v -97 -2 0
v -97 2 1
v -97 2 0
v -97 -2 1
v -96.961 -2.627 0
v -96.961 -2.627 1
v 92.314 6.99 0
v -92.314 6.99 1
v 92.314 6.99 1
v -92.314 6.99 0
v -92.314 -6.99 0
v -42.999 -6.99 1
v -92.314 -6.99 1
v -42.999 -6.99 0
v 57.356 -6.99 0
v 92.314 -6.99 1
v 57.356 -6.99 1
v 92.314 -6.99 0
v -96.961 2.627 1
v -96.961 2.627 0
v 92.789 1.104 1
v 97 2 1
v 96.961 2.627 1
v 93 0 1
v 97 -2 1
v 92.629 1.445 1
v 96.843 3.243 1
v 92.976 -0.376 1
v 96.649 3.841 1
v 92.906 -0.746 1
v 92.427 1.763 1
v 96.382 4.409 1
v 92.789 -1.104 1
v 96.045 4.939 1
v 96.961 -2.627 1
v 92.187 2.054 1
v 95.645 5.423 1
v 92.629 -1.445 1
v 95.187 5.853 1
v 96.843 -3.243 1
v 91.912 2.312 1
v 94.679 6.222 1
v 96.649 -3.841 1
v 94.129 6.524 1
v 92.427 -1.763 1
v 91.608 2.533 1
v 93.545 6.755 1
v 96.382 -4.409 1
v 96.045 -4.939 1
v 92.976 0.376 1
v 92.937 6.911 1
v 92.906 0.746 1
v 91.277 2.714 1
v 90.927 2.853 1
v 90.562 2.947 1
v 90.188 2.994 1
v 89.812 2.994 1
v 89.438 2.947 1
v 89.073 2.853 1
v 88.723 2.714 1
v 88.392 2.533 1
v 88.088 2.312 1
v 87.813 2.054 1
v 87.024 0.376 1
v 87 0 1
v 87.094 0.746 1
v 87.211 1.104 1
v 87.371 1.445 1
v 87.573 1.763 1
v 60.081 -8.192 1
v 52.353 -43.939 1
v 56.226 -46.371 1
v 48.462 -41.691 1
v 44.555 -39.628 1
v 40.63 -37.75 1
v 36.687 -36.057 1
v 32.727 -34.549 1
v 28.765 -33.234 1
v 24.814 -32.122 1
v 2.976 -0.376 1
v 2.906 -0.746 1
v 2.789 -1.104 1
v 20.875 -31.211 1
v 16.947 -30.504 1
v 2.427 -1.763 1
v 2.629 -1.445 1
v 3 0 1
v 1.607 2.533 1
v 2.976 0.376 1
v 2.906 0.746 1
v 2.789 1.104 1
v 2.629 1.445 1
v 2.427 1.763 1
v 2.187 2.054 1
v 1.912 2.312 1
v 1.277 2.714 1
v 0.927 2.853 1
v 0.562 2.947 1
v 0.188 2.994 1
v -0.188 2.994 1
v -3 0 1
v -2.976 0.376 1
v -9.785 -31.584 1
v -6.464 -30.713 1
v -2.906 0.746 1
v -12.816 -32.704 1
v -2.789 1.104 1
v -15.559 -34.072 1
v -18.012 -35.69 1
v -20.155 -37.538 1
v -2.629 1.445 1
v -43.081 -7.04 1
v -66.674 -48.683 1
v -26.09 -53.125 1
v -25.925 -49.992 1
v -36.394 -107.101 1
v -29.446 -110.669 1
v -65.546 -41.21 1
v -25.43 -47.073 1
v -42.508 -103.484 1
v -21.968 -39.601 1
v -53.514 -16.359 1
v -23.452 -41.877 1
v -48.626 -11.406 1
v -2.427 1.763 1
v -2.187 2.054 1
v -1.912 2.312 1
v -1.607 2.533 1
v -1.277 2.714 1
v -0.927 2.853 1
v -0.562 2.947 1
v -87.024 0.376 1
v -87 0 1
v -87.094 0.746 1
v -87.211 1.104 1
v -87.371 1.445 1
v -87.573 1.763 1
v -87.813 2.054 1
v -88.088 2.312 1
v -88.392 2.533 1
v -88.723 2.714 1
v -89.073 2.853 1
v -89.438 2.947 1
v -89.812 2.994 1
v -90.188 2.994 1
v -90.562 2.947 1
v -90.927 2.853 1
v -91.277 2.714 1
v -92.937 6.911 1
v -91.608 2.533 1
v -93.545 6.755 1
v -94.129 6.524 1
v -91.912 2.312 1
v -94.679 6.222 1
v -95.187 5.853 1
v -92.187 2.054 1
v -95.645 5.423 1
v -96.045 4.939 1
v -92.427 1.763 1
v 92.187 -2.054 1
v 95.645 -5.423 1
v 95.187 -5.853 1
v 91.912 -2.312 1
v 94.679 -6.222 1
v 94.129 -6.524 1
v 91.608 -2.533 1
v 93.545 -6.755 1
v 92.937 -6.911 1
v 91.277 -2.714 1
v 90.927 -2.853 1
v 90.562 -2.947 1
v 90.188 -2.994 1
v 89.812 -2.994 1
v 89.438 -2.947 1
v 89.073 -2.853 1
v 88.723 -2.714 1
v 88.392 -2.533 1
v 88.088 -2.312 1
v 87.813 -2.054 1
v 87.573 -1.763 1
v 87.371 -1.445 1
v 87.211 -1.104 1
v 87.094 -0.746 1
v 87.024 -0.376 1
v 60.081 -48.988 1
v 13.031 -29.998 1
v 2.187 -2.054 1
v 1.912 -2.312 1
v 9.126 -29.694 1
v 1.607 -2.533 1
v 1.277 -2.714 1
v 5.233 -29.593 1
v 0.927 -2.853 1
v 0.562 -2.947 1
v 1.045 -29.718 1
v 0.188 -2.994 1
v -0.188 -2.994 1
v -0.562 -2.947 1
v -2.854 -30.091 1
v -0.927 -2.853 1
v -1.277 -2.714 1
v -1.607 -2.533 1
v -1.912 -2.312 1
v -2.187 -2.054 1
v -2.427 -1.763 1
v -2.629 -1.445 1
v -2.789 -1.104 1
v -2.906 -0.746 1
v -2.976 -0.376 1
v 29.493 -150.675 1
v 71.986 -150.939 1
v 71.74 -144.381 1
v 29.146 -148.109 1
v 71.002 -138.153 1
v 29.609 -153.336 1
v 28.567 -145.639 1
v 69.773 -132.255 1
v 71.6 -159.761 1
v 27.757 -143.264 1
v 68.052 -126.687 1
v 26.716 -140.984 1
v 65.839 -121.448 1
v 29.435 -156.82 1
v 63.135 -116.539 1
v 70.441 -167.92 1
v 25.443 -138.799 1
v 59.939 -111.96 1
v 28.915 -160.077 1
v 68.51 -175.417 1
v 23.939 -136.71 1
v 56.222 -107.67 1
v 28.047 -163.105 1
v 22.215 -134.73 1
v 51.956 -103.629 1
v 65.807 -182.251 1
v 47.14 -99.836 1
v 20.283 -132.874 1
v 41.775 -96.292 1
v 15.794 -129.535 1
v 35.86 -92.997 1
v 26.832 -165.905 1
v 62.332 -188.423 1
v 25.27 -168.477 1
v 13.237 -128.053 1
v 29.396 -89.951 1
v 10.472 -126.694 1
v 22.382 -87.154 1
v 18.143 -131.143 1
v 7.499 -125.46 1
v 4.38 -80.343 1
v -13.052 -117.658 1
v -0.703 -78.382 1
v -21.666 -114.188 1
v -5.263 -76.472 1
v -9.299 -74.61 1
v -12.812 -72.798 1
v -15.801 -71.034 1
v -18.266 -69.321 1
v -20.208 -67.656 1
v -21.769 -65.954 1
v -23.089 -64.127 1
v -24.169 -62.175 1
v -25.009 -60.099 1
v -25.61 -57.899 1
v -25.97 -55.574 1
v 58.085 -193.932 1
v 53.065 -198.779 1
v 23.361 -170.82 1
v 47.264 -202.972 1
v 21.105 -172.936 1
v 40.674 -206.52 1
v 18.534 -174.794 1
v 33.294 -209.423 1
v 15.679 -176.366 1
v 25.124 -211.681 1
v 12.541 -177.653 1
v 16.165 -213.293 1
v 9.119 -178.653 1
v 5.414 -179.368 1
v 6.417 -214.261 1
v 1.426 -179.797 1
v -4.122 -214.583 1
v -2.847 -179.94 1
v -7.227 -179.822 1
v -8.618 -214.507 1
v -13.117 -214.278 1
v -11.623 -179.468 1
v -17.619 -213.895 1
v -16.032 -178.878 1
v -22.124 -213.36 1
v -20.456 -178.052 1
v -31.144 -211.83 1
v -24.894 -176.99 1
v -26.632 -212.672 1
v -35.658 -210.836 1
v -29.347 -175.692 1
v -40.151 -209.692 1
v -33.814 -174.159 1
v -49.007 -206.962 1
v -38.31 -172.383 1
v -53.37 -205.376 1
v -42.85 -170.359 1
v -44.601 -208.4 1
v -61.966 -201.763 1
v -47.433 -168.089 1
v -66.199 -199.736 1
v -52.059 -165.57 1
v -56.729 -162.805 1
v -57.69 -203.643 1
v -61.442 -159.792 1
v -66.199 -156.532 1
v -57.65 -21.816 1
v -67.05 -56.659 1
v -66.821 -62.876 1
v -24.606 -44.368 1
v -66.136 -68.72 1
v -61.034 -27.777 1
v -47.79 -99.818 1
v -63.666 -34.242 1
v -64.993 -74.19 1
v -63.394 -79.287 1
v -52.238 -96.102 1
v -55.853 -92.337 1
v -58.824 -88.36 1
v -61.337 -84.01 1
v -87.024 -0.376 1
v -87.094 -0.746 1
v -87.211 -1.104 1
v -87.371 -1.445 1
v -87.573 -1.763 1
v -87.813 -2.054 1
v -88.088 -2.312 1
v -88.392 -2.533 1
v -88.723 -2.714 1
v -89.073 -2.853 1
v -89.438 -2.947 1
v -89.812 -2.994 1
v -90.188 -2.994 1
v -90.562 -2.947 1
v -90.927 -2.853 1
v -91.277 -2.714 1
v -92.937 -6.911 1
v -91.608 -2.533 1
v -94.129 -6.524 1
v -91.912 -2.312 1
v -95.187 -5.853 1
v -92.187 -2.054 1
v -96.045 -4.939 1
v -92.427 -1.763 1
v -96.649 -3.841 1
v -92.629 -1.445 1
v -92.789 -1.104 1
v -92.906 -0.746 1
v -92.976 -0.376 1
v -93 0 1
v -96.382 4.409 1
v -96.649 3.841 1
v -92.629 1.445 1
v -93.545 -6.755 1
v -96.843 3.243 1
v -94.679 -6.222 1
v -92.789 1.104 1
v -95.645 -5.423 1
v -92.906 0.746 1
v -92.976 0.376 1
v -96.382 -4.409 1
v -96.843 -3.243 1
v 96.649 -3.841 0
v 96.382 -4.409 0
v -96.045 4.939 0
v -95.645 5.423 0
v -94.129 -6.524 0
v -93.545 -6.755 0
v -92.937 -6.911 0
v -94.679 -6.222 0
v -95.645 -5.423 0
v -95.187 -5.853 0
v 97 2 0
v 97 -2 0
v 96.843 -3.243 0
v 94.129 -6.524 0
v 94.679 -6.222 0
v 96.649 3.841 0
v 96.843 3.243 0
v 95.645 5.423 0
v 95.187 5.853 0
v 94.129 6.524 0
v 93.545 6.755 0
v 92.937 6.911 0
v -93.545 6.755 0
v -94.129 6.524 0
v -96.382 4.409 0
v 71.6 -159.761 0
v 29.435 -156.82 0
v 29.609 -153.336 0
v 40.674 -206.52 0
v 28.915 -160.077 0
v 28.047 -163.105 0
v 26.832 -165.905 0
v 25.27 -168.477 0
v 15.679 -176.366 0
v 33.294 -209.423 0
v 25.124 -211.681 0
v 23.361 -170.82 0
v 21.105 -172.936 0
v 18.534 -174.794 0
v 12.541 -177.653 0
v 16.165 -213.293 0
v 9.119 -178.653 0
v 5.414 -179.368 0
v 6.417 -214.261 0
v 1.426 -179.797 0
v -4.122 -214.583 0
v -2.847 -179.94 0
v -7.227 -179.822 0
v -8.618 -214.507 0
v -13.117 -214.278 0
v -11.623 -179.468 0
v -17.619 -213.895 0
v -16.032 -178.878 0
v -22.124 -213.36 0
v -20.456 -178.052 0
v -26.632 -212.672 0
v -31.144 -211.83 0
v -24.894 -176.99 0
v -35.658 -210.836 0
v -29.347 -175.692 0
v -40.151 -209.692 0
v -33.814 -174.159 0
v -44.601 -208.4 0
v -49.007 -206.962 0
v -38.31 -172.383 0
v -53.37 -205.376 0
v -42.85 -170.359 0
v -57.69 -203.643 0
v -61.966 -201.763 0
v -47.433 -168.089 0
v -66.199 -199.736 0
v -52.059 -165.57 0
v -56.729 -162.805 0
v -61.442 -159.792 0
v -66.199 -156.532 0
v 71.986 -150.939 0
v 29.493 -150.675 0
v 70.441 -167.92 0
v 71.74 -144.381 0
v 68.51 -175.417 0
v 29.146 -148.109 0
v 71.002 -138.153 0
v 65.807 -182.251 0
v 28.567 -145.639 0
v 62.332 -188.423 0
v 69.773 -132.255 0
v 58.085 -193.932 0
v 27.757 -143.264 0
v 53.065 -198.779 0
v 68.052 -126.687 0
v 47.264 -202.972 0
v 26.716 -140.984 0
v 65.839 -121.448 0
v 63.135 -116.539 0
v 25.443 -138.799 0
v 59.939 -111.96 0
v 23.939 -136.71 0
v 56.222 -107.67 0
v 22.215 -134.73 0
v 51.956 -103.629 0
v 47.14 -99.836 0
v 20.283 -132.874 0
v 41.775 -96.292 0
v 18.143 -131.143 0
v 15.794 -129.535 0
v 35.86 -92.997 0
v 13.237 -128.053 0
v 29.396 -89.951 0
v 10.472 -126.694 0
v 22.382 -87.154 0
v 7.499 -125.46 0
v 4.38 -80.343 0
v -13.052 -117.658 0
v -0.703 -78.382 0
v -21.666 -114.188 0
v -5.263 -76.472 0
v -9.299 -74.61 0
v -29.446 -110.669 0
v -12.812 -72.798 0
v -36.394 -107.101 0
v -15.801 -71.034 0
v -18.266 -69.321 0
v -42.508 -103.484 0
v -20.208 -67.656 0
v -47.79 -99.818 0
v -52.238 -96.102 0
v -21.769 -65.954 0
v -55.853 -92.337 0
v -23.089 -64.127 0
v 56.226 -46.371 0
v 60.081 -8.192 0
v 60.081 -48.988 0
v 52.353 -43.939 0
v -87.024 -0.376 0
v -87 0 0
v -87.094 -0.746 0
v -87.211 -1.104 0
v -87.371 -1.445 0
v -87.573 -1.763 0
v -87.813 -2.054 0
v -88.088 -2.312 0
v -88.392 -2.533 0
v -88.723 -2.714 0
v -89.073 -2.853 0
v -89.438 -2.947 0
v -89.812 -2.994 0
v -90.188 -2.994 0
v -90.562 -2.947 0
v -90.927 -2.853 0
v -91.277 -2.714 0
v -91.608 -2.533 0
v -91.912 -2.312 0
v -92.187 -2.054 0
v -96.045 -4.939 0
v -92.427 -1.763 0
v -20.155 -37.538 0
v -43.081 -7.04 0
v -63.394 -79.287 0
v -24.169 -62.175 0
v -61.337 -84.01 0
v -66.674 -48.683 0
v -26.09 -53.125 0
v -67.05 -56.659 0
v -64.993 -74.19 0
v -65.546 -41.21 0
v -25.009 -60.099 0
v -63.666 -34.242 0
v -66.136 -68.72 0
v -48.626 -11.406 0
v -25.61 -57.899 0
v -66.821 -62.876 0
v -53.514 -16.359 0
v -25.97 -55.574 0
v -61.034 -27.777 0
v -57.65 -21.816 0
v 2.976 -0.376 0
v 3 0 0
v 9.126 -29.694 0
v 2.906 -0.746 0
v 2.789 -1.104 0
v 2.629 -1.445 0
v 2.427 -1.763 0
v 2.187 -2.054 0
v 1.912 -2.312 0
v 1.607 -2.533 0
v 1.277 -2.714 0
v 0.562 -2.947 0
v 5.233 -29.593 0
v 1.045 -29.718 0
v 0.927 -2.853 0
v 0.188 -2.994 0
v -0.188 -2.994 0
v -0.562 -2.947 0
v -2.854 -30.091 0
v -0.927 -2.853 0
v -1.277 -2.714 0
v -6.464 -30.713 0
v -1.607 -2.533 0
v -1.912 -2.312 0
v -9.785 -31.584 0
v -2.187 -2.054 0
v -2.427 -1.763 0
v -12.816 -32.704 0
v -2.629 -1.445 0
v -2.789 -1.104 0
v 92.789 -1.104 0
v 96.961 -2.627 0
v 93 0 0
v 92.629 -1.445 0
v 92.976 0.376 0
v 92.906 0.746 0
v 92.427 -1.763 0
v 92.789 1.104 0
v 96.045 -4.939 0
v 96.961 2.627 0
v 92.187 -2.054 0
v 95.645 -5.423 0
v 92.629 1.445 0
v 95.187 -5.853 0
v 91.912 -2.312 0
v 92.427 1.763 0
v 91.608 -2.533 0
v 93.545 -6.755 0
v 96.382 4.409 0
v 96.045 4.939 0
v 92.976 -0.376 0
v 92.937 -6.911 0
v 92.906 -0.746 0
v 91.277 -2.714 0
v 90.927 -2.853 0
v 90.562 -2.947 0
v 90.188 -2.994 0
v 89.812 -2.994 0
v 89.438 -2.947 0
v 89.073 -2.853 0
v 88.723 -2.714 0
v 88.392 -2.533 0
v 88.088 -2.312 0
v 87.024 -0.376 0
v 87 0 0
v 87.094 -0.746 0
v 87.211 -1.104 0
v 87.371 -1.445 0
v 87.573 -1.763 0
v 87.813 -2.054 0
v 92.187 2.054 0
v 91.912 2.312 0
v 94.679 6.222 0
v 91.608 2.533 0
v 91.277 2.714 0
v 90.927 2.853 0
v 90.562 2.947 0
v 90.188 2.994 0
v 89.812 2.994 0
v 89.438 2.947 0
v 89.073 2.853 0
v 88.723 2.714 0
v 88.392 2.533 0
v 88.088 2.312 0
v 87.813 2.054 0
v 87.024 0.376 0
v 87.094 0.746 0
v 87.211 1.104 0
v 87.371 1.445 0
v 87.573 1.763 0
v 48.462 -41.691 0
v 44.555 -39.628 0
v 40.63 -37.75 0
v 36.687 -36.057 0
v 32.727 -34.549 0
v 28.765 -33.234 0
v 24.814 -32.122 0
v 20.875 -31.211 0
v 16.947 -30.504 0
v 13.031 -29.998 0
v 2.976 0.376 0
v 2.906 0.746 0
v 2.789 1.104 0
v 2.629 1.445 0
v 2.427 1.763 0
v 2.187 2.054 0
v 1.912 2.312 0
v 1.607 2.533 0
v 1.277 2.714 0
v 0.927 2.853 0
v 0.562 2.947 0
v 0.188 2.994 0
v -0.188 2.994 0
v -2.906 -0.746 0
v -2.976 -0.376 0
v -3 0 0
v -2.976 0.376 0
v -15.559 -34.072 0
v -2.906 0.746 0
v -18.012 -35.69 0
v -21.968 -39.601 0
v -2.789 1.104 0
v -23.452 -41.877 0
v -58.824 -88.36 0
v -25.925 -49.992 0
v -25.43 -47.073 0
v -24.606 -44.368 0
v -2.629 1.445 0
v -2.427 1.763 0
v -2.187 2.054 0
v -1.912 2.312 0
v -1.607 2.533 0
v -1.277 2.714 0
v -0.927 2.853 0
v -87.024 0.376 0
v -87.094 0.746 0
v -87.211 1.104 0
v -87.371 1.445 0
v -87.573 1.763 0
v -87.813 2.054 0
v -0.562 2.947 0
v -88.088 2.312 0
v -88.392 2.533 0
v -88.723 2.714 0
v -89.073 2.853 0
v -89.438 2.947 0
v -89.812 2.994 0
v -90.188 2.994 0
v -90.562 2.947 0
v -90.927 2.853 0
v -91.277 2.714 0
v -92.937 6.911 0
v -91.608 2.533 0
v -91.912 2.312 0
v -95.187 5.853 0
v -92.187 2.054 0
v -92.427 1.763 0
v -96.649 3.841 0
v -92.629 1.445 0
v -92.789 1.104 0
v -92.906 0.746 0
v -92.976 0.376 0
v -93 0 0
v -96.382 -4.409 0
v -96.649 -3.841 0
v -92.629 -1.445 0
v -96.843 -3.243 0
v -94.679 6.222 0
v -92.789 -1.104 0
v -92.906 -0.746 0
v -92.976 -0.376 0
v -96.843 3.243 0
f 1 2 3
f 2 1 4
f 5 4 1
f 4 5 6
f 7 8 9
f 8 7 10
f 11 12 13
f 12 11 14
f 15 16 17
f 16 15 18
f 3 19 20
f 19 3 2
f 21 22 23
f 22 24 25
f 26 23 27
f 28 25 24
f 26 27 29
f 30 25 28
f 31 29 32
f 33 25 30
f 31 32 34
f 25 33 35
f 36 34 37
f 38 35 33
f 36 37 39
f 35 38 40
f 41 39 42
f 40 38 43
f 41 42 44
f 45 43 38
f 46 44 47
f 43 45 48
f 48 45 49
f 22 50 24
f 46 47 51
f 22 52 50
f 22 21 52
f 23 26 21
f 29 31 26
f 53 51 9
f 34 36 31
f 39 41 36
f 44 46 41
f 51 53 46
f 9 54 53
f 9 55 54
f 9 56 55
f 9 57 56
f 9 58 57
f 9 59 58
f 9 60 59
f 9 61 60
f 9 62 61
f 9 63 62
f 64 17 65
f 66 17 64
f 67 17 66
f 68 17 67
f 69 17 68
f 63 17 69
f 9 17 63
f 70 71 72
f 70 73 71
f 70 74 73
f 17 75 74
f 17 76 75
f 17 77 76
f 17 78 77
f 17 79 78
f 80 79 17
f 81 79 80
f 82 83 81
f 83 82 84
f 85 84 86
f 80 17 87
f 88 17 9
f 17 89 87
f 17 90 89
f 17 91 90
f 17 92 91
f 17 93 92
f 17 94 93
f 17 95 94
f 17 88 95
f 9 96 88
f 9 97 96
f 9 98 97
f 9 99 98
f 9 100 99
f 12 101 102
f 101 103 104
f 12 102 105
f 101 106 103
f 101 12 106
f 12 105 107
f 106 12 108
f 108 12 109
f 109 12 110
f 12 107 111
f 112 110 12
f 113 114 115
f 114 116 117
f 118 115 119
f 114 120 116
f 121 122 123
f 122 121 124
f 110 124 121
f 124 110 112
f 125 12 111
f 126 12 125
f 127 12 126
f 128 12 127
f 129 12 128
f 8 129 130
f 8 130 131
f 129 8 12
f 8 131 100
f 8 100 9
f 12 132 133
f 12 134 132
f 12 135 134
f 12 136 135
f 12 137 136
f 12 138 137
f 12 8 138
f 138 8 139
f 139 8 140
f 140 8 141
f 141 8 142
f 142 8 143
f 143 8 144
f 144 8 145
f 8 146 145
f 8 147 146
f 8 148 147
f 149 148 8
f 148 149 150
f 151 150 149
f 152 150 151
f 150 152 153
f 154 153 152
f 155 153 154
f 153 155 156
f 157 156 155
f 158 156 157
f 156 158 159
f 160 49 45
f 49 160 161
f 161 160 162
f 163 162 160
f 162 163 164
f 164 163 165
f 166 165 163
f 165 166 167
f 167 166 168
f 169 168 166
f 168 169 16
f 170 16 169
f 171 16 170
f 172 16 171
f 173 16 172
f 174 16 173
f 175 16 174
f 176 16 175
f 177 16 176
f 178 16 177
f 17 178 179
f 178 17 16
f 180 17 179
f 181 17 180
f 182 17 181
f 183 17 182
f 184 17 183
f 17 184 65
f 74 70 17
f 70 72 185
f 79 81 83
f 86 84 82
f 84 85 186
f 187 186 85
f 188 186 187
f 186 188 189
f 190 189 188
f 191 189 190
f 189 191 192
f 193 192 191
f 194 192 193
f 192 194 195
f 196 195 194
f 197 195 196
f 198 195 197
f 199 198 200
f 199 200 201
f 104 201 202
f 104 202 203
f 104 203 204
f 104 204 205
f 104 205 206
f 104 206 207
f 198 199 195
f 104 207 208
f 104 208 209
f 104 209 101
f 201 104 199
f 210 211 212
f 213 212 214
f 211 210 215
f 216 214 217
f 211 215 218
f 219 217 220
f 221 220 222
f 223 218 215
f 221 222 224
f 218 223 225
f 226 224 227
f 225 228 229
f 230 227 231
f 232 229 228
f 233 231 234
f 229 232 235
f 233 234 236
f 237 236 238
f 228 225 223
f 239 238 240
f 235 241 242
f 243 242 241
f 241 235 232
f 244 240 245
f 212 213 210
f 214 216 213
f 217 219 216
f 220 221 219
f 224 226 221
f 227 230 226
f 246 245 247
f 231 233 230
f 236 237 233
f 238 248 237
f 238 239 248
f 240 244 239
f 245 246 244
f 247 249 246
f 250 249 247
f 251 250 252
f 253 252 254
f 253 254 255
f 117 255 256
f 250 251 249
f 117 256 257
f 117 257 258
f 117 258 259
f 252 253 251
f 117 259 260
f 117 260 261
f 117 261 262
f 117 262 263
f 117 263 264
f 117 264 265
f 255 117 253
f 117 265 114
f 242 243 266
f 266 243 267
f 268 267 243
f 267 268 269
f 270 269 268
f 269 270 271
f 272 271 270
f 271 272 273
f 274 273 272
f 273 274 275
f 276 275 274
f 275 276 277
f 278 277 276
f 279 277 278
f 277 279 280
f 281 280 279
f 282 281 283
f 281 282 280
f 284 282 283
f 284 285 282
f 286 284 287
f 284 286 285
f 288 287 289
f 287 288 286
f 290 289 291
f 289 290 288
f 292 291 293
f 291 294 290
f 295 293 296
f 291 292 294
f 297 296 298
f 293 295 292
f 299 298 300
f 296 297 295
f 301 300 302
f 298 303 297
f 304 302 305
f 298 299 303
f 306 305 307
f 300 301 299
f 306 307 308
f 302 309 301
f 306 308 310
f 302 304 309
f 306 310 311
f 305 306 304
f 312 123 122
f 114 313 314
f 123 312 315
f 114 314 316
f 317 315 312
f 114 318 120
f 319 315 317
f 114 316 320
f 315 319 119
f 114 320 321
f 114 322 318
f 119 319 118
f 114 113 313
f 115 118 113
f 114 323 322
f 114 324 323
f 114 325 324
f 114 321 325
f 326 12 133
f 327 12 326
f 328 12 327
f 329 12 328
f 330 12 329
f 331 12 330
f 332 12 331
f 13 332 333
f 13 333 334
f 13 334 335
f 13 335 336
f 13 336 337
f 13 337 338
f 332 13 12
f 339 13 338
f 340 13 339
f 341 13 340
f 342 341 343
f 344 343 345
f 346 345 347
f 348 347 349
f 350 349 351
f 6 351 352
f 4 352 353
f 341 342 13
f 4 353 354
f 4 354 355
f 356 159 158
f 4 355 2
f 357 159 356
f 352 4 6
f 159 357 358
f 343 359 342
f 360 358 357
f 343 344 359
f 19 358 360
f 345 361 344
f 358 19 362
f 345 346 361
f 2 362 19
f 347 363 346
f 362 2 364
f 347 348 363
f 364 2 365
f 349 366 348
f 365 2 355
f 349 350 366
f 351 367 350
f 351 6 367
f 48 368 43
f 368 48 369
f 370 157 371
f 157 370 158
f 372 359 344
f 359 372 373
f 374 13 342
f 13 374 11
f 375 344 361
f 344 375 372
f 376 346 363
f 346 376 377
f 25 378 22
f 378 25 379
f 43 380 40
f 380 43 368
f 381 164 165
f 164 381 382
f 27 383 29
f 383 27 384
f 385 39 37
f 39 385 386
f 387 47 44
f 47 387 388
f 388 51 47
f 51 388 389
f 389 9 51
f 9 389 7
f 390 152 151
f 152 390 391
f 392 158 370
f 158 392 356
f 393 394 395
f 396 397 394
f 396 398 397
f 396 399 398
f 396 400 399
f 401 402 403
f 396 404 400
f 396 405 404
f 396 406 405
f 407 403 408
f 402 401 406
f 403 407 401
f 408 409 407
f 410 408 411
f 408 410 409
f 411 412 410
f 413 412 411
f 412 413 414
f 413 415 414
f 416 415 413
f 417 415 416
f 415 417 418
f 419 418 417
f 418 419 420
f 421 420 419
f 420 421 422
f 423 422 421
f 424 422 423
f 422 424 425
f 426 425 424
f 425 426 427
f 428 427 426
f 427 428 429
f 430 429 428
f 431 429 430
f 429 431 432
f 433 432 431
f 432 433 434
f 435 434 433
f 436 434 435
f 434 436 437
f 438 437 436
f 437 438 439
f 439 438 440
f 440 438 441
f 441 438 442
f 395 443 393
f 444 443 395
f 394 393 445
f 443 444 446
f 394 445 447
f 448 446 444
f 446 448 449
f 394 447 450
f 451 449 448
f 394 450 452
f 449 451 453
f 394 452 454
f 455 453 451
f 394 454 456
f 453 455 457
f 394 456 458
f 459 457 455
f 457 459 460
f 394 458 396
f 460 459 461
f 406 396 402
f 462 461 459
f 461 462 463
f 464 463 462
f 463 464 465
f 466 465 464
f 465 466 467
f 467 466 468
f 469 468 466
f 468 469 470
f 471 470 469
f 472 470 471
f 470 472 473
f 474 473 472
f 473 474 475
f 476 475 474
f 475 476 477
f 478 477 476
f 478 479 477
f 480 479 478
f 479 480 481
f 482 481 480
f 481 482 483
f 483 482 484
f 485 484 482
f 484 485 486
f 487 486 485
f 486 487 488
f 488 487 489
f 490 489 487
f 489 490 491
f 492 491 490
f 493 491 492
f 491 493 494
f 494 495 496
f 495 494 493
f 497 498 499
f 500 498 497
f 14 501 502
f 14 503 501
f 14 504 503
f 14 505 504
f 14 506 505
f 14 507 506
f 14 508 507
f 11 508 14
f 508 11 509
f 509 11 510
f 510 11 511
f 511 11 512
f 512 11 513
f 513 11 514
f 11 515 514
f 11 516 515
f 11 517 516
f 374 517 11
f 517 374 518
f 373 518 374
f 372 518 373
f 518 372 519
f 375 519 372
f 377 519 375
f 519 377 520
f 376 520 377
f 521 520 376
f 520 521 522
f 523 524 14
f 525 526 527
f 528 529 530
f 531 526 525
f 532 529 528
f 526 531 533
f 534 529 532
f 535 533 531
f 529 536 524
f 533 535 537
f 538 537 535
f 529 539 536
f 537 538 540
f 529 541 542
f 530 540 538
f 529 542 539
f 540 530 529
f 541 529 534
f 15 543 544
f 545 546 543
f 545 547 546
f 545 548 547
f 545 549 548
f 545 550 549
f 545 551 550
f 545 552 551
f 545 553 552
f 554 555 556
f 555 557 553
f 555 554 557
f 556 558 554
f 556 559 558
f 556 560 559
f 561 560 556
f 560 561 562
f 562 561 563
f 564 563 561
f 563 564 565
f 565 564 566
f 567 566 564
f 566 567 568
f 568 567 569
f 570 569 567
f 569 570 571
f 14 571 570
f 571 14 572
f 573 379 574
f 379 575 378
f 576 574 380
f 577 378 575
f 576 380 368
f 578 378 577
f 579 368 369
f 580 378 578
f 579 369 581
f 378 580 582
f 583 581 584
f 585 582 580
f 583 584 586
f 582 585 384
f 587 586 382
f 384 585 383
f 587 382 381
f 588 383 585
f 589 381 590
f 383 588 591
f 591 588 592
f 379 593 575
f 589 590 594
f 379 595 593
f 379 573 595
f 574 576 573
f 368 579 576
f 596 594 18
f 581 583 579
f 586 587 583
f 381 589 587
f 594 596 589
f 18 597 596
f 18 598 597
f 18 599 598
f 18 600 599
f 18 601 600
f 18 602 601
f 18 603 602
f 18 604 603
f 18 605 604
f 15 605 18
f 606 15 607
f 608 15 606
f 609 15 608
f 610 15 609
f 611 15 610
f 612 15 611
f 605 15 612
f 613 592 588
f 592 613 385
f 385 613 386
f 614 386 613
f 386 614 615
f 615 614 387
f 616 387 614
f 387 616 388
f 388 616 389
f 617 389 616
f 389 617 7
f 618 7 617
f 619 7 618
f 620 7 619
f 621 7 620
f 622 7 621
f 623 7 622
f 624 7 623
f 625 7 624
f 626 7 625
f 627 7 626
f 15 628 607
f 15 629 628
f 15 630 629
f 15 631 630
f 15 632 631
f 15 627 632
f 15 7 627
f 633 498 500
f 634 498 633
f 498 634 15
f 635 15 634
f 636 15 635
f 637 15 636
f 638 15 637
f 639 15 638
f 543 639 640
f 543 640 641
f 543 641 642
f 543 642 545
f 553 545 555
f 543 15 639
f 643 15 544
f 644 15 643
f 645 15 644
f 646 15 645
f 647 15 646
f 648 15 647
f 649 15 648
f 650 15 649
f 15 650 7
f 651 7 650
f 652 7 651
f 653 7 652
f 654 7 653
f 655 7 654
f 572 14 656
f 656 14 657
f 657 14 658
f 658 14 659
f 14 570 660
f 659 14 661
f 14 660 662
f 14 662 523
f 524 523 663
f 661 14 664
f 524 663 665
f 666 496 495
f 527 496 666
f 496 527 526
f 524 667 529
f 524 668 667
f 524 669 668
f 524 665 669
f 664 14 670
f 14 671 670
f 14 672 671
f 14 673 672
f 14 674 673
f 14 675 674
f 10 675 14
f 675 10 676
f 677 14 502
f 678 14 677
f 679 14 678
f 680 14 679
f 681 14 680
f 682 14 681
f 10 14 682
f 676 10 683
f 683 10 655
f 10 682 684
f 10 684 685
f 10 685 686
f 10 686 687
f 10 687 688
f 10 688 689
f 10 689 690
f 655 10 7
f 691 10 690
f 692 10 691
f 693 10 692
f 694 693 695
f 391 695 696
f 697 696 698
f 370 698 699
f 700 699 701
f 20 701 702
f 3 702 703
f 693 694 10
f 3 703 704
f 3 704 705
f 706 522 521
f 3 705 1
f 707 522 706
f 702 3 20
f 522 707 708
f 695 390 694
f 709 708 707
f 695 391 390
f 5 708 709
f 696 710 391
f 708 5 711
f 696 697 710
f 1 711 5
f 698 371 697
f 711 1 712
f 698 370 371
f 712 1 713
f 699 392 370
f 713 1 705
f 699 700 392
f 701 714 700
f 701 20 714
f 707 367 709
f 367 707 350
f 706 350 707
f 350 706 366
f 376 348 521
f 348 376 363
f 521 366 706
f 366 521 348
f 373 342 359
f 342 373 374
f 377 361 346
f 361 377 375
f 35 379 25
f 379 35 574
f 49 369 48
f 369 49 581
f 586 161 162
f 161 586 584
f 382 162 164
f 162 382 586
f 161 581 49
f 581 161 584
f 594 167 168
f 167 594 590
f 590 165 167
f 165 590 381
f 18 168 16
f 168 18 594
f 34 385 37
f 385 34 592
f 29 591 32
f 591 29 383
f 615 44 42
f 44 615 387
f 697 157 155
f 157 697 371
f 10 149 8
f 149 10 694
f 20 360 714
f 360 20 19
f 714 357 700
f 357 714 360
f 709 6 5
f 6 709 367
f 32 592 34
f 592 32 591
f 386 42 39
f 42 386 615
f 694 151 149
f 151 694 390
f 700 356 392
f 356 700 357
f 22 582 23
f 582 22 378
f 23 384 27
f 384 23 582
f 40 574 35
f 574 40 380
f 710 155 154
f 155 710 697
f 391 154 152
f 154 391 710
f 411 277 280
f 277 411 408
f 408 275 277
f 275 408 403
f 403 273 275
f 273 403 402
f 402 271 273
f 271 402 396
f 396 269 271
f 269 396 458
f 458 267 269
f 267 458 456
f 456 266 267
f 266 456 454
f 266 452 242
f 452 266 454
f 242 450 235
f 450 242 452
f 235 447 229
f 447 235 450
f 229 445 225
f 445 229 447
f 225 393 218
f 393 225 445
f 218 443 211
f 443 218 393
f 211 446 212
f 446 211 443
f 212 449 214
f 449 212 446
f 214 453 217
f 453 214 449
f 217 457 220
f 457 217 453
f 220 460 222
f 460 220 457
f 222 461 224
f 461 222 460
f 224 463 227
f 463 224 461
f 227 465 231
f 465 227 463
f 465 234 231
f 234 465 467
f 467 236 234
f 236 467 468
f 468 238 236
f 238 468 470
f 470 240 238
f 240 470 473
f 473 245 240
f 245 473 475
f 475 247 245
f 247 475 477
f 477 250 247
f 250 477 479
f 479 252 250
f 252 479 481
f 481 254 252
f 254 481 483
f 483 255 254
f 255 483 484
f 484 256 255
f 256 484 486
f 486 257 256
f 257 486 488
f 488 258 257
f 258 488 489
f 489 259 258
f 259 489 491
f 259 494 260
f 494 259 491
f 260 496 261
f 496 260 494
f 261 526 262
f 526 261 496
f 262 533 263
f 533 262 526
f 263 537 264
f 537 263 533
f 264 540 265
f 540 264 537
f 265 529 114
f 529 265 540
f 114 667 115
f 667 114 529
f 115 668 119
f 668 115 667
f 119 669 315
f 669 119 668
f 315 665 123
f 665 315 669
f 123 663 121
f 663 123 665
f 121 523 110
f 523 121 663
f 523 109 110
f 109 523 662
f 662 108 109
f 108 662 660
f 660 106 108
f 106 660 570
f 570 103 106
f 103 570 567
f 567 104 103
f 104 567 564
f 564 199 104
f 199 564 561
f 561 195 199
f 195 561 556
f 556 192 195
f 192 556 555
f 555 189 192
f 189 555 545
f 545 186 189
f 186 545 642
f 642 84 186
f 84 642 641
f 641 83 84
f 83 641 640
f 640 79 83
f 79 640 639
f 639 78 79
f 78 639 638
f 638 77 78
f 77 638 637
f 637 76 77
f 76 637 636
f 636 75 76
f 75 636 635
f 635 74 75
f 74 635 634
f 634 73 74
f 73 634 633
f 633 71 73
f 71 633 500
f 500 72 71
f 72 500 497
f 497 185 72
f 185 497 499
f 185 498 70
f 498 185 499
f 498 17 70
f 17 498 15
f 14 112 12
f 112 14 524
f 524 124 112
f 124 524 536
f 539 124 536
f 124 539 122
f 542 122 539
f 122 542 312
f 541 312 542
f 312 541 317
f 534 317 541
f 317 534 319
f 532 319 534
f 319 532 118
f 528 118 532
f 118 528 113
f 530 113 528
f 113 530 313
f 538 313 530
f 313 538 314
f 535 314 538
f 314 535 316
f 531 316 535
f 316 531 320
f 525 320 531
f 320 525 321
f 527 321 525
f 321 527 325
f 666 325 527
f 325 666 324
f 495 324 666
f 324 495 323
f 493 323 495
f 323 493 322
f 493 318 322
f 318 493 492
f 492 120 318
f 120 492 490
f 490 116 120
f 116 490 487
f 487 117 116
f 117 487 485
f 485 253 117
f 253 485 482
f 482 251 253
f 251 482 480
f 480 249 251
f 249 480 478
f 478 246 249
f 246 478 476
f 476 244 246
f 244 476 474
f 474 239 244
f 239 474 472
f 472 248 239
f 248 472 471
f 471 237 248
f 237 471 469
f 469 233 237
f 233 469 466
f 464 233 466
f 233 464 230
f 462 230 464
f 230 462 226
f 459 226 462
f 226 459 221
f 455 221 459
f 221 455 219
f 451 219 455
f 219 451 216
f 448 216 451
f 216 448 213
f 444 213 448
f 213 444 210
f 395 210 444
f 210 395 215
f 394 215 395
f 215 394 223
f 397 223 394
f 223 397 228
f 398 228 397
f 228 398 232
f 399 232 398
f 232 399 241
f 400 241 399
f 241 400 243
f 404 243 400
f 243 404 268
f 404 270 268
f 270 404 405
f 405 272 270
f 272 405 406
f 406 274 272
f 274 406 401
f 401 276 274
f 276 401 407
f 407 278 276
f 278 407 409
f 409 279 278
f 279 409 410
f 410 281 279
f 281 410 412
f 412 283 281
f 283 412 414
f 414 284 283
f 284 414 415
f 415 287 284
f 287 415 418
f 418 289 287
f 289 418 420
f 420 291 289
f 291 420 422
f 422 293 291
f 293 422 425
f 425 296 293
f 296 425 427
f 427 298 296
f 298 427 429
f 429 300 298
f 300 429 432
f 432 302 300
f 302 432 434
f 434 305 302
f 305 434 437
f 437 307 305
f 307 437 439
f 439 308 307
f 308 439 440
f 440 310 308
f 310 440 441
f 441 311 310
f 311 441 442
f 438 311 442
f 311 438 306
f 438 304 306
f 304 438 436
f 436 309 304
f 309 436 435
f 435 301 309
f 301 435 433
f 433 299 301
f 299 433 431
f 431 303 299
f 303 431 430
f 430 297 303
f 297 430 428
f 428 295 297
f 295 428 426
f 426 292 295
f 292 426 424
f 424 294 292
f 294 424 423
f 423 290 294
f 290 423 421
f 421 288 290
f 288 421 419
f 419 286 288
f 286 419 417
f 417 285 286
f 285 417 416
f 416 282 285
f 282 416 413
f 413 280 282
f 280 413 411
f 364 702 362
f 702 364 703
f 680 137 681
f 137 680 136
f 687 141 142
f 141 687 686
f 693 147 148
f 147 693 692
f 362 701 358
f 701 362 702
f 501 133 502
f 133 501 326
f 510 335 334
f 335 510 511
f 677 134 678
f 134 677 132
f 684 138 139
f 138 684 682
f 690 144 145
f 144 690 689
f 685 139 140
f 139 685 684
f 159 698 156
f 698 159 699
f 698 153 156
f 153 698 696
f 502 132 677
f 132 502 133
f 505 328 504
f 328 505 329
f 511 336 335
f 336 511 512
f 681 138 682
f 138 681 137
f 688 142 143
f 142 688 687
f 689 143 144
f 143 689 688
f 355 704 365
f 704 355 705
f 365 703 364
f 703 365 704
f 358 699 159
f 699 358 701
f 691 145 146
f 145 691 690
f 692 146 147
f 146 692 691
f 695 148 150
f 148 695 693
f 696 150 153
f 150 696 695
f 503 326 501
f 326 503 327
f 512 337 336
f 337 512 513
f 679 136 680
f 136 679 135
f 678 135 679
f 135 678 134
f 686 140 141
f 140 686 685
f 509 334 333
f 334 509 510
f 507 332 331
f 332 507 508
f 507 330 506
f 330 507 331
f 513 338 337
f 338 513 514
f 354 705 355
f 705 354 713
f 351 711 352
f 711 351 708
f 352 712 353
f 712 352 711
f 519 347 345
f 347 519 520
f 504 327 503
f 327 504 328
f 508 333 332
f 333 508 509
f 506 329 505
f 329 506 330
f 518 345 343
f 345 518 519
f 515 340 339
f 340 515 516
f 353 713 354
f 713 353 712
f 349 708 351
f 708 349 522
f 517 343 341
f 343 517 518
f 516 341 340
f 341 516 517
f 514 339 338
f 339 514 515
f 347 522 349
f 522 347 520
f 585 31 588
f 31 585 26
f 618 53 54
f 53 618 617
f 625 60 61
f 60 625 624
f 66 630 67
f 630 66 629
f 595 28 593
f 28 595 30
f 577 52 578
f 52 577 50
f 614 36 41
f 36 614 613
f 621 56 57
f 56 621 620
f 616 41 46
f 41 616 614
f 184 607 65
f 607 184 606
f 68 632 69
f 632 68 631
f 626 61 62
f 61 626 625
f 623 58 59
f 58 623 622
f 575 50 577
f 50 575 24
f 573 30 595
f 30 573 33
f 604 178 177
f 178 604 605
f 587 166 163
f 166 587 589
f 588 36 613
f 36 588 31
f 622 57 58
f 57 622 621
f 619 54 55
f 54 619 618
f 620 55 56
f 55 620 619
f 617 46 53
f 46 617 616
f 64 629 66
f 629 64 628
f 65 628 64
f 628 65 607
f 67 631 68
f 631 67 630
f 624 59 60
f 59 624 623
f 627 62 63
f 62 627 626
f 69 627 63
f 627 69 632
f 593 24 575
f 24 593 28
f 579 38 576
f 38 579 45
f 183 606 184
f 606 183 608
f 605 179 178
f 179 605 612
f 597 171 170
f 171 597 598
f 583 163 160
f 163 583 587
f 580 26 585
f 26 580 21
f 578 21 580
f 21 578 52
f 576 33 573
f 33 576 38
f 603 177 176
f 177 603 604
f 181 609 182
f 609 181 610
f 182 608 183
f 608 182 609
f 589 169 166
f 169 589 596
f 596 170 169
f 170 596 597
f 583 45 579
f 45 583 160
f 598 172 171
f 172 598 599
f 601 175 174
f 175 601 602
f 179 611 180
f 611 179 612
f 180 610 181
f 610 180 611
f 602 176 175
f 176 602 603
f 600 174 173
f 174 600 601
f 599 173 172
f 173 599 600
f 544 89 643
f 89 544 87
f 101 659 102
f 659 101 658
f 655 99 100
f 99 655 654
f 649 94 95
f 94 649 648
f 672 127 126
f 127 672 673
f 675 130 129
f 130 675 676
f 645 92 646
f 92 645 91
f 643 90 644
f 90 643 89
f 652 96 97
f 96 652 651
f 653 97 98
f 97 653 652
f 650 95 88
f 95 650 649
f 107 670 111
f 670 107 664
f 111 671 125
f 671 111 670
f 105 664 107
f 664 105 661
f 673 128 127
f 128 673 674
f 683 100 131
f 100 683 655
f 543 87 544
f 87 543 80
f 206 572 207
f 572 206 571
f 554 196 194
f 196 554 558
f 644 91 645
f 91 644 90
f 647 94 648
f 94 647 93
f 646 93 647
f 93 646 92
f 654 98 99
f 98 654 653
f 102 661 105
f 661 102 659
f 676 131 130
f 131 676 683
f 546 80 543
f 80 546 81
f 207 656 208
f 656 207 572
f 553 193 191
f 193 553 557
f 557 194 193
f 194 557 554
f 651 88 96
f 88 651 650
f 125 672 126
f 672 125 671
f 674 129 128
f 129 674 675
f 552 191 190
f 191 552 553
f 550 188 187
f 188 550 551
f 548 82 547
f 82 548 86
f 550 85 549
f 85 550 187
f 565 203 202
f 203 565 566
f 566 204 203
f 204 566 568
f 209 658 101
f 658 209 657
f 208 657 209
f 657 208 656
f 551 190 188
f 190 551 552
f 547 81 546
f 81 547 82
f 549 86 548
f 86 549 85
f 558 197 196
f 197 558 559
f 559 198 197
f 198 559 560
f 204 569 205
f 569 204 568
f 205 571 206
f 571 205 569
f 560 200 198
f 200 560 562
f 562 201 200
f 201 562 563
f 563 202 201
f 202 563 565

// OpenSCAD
$fn = 50;


difference() {
	union() {
		translate(v = [0, 0, 0]) {
			rotate(a = [0, 0, 0]) {
				hull() {
					translate(v = [-92.0000000000, 2.0000000000, 0]) {
						rotate(a = [0, 0, 0]) {
							translate(v = [0, 0, 0]) {
								rotate(a = [0, 0, 0]) {
									cylinder(h = 1, r = 5);
								}
							}
						}
					}
					translate(v = [92.0000000000, 2.0000000000, 0]) {
						rotate(a = [0, 0, 0]) {
							translate(v = [0, 0, 0]) {
								rotate(a = [0, 0, 0]) {
									cylinder(h = 1, r = 5);
								}
							}
						}
					}
					translate(v = [-92.0000000000, -2.0000000000, 0]) {
						rotate(a = [0, 0, 0]) {
							translate(v = [0, 0, 0]) {
								rotate(a = [0, 0, 0]) {
									cylinder(h = 1, r = 5);
								}
							}
						}
					}
					translate(v = [92.0000000000, -2.0000000000, 0]) {
						rotate(a = [0, 0, 0]) {
							translate(v = [0, 0, 0]) {
								rotate(a = [0, 0, 0]) {
									cylinder(h = 1, r = 5);
								}
							}
						}
					}
				}
			}
		}
		translate(v = [0, 0, 0]) {
			rotate(a = [0, 0, 0]) {
				linear_extrude(height = 1) {
					text(font = "DejaVu Sans Mono:style=Bold", halign = "center", size = 209.0000000000, text = "S", valign = "top");
				}
			}
		}
	}
	union() {
		translate(v = [-90.0000000000, 0.0000000000, -125.0000000000]) {
			rotate(a = [0, 0, 0]) {
				cylinder(h = 250, r = 3.0000000000);
			}
		}
		translate(v = [90.0000000000, 0.0000000000, -125.0000000000]) {
			rotate(a = [0, 0, 0]) {
				cylinder(h = 250, r = 3.0000000000);
			}
		}
		translate(v = [90.0000000000, 0.0000000000, -125.0000000000]) {
			rotate(a = [0, 0, 0]) {
				cylinder(h = 250, r = 3.0000000000);
			}
		}
		translate(v = [0, 0, -125.0000000000]) {
			rotate(a = [0, 0, 0]) {
				cylinder(h = 250, r = 3.0000000000);
			}
		}
	}
}
